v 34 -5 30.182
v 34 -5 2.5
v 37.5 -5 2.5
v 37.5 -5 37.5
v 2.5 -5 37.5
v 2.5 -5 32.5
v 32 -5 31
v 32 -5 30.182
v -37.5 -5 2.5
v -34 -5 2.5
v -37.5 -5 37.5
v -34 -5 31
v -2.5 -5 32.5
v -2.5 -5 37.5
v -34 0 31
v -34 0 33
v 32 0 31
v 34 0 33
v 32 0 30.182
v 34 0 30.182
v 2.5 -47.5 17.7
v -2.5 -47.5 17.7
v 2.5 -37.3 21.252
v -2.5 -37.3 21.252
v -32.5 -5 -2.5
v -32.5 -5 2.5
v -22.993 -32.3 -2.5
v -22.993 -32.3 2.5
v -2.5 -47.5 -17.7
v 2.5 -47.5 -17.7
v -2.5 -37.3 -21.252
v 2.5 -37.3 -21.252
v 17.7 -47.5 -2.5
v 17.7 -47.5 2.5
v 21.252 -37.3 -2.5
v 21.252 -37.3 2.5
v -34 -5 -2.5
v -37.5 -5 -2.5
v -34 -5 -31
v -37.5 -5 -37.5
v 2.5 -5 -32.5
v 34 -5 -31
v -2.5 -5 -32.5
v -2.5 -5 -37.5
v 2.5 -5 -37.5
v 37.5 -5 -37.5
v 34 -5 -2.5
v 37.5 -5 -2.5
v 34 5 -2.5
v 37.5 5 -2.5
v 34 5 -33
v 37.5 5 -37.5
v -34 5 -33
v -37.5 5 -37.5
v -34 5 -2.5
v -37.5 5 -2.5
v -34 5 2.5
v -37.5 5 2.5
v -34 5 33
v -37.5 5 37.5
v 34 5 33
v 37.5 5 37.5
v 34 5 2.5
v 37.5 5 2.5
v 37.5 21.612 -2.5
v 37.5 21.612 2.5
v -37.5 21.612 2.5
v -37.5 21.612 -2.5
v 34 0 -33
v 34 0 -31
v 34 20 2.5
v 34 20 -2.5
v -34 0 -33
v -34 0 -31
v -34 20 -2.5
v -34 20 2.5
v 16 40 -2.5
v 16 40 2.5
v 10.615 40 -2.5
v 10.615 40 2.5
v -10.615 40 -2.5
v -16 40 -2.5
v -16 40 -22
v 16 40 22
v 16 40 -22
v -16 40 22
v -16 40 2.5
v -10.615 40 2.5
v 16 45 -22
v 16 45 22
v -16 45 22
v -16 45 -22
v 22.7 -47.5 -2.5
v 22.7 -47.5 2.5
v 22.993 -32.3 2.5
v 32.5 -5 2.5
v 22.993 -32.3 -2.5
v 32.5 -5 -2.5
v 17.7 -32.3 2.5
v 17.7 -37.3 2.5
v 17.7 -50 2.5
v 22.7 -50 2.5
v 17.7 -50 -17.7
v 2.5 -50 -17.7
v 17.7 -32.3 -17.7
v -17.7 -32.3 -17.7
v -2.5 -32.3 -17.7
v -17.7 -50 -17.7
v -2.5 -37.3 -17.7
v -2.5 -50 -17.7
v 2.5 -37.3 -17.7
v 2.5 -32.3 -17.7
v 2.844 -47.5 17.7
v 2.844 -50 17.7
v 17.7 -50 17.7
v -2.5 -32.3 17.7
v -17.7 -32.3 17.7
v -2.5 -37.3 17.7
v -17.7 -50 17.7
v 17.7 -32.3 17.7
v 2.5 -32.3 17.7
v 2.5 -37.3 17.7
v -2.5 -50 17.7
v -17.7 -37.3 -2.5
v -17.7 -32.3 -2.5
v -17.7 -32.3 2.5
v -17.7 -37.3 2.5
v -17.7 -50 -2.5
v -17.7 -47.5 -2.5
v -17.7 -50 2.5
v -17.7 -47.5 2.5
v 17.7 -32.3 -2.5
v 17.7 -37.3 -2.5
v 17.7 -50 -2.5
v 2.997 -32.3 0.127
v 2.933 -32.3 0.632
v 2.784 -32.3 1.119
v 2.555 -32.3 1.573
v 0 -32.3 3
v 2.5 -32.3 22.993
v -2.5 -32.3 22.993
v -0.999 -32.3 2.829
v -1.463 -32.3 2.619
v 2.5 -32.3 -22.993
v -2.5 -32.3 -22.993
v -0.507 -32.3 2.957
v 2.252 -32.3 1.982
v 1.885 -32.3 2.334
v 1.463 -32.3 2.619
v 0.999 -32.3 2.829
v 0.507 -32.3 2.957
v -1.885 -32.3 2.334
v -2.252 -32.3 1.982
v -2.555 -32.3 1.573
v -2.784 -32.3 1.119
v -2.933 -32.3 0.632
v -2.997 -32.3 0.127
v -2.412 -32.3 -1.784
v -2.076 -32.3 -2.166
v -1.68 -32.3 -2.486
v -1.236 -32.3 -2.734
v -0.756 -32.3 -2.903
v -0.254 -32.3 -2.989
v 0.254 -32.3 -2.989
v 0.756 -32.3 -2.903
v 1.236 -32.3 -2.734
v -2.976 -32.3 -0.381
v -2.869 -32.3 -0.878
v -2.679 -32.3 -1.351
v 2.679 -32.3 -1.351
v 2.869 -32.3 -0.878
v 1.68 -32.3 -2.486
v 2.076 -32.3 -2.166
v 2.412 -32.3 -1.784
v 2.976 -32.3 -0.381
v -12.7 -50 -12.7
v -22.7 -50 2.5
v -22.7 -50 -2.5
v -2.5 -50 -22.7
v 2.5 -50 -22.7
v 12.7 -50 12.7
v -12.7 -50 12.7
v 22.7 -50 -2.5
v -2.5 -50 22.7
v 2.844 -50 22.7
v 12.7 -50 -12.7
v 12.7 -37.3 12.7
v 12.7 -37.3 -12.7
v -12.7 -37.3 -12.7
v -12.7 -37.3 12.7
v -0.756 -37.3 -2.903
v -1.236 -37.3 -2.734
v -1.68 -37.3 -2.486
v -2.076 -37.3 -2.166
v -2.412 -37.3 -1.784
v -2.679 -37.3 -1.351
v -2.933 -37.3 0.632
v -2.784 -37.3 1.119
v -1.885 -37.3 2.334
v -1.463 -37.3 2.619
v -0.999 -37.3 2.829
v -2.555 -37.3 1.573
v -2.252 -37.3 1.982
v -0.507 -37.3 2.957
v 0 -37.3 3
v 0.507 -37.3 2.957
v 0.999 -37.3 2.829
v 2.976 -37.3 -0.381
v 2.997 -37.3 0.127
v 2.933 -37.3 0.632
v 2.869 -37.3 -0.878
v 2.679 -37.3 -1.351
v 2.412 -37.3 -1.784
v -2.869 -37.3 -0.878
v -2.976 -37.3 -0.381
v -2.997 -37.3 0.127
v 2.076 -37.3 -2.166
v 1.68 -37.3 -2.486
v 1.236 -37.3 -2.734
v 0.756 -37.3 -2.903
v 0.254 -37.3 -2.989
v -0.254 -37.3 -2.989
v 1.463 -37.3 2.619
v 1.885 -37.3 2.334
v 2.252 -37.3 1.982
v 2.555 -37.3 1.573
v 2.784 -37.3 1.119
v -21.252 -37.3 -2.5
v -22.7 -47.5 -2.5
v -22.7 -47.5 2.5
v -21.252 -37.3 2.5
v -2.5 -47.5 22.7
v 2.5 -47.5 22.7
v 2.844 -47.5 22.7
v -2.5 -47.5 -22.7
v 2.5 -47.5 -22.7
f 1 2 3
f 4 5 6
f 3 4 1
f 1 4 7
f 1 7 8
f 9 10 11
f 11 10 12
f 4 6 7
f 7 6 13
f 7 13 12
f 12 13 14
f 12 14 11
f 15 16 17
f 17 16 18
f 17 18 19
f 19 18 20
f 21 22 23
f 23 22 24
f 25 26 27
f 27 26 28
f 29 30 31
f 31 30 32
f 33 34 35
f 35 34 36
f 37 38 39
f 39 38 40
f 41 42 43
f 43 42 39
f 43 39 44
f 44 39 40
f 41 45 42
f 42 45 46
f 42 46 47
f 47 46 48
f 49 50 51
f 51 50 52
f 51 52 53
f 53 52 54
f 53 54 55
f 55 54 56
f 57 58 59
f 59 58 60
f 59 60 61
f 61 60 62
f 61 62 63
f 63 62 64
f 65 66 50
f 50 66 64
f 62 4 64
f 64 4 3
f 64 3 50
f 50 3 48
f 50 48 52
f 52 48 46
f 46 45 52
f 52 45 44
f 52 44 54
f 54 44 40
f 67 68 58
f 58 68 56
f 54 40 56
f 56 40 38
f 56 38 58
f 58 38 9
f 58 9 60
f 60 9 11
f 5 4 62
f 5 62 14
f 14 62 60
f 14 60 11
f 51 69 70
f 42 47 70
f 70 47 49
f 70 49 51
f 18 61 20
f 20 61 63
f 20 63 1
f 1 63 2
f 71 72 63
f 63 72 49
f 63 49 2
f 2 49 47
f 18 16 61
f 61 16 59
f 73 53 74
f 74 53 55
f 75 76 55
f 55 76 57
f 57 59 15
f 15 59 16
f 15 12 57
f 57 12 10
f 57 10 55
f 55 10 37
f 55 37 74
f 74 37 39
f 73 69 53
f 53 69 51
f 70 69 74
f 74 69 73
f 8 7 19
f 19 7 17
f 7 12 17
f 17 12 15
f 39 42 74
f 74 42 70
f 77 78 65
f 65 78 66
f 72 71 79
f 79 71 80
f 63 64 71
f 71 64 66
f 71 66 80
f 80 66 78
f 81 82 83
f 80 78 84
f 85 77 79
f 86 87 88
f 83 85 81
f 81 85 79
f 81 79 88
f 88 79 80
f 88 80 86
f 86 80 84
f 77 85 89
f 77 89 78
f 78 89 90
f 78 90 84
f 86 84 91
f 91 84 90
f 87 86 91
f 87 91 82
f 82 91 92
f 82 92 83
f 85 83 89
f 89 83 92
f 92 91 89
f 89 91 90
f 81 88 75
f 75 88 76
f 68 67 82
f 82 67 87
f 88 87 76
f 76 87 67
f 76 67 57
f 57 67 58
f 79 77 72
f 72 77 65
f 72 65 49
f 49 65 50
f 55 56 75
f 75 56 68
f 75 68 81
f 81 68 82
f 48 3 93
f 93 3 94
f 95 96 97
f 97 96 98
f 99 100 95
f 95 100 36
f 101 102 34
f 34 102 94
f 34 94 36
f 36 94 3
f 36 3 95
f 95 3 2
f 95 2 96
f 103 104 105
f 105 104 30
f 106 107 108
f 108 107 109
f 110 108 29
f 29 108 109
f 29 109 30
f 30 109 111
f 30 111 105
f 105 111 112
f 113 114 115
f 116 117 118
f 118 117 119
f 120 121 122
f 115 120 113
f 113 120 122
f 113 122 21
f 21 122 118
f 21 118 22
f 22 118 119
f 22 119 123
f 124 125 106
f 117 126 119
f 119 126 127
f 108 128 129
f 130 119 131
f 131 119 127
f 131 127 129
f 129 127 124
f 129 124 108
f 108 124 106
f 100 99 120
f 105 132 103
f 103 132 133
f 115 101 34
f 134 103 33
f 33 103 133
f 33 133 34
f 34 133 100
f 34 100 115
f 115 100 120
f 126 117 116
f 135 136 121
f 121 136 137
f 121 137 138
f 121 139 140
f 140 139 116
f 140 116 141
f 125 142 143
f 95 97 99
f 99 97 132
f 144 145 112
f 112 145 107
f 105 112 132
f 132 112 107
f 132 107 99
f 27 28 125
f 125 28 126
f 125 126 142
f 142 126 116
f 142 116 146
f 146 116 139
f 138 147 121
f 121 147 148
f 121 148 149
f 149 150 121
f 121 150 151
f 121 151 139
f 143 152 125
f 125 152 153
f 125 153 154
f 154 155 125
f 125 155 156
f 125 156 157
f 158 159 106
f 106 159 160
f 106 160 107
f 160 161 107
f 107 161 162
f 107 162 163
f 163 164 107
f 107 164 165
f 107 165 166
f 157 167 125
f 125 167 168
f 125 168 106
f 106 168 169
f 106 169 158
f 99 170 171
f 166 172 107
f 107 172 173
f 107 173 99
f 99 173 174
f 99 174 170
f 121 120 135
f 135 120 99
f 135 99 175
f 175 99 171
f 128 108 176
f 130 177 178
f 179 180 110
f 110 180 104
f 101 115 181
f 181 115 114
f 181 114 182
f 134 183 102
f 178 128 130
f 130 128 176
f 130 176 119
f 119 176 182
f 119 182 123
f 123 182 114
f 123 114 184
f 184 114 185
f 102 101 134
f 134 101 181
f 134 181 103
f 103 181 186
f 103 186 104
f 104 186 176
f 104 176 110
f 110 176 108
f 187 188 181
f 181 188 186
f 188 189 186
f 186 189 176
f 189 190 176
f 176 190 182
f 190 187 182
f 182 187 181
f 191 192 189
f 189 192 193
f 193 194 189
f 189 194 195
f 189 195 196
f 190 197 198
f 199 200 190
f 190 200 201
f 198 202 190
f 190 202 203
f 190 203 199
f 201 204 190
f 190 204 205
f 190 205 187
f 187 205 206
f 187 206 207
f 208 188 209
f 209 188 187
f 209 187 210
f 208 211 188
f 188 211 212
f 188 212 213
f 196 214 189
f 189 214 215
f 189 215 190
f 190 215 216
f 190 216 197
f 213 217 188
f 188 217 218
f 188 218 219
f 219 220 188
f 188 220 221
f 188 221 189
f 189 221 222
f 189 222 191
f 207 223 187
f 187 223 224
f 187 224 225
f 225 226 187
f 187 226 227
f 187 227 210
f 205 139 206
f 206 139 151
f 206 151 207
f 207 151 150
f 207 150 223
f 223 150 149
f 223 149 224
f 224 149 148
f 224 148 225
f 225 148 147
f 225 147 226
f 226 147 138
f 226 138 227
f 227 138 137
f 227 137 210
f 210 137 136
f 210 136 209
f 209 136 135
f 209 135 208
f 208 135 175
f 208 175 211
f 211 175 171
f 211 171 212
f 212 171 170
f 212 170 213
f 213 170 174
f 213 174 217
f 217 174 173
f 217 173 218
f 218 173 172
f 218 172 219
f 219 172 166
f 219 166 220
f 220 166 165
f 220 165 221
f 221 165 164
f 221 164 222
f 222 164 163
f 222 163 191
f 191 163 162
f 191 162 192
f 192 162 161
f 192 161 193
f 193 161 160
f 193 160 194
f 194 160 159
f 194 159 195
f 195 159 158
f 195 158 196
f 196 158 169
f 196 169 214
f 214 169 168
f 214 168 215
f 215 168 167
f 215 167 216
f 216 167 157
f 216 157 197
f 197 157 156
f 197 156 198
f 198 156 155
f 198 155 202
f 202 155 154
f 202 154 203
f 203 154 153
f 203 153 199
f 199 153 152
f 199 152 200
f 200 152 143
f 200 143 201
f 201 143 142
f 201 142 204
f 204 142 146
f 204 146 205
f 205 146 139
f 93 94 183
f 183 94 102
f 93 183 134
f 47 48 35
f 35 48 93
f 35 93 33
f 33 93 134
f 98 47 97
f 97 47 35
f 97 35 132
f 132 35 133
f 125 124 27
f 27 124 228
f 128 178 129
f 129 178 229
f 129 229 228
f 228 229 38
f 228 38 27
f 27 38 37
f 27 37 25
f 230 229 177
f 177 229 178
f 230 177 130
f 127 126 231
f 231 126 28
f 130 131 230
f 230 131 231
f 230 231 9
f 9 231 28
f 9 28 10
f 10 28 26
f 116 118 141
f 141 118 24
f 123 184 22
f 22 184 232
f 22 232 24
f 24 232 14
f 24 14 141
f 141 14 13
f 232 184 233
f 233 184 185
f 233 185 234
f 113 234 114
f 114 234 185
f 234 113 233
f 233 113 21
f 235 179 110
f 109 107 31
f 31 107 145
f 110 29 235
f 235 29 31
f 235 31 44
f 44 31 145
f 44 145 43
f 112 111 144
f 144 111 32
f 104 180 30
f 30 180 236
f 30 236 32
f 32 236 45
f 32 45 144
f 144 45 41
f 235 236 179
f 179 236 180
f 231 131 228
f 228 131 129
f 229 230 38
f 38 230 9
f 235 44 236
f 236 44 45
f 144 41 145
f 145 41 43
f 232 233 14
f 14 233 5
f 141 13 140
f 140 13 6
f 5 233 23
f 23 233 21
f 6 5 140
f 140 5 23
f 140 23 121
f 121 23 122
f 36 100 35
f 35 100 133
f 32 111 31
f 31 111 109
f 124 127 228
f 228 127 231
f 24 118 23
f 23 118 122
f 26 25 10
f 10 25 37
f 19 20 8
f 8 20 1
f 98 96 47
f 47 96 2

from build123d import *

# Parameters (mm, degrees)
SKETCH2_W                   = 75
SKETCH2_H                   = 75
BOSS_EXTRUDE1_DEPTH         = 5
SKETCH2_2_W                 = 75
SKETCH2_2_H                 = 75
BOSS_EXTRUDE2_DEPTH         = 5
SKETCH4_W                   = 68
SKETCH4_H                   = 66
CUT_EXTRUDE1_DEPTH          = 5
SKETCH5_W                   = 64
SKETCH5_H                   = 62
CUT_EXTRUDE2_DEPTH          = 5
SKETCH14_W                  = 35.4
SKETCH14_H                  = 35.4
BOSS_EXTRUDE9_DEPTH         = 17.7
SKETCH15_W                  = 25.4
SKETCH15_H                  = 25.4
CUT_EXTRUDE3_DEPTH          = 12.7
SKETCH32_R                  = 3
CUT_EXTRUDE6_DEPTH          = 5
SKETCH16_W                  = 32
SKETCH16_H                  = 44
BOSS_EXTRUDE10_DEPTH        = 5
BOSS_EXTRUDE13_DEPTH        = 2.5
BOSS_EXTRUDE14_DEPTH        = 2.5
SKETCH27_W                  = 5
SKETCH27_H                  = 5
SKETCH27_W_2                = 5.344431893
EYEBOLT_BOLT_SUPPORTS_DEPTH = 2.5
BOSS_EXTRUDE15_DEPTH        = 2.5
BOSS_EXTRUDE16_DEPTH        = 2.5
BOSS_EXTRUDE17_DEPTH        = 2.5
BOSS_EXTRUDE18_DEPTH        = 2.5
SKETCH33_W                  = 6.3
SKETCH33_H                  = 5
SKETCH33_W_2                = 5
SKETCH33_H_2                = 6.3
EYEBOLT_MINI_SUPPORTS_DEPTH = 5
SKETCH34_W                  = 2
SKETCH34_H                  = 62
SKETCH34_H_2                = 61.182345807
CUT_EXTRUDE7_DEPTH          = 5


with BuildPart() as part:
    # Sketch2 → Boss-Extrude1 (new body)
    with BuildSketch(Plane(origin=(0, 0, 0), x_dir=(1, 0, 0), z_dir=(0, 1, 0))):
        Rectangle(SKETCH2_W, SKETCH2_H)
    extrude(amount=BOSS_EXTRUDE1_DEPTH)

    # Sketch2<2> → Boss-Extrude2 (add)
    with BuildSketch(Plane(origin=(0, 0, 0), x_dir=(1, 0, 0), z_dir=(0, 1, 0))):
        Rectangle(SKETCH2_2_W, SKETCH2_2_H)
    extrude(amount=-BOSS_EXTRUDE2_DEPTH)

    # Sketch4 → Cut-Extrude1 (cut)
    with BuildSketch(Plane(origin=(0, 5, 0), x_dir=(1, 0, 0), z_dir=(0, 1, 0))):
        Rectangle(SKETCH4_W, SKETCH4_H)
    extrude(amount=-CUT_EXTRUDE1_DEPTH, mode=Mode.SUBTRACT)

    # Sketch5 → Cut-Extrude2 (cut)
    with BuildSketch(Plane(origin=(0, 0, 0), x_dir=(1, 0, 0), z_dir=(0, 1, 0))):
        Rectangle(SKETCH5_W, SKETCH5_H)
    extrude(amount=-CUT_EXTRUDE2_DEPTH, mode=Mode.SUBTRACT)



with BuildPart() as body_2:
    # Sketch14 → Boss-Extrude9 (new body)
    with BuildSketch(Plane(origin=(0, -50, 0), x_dir=(1, 0, 0), z_dir=(0, 1, 0))):
        Rectangle(SKETCH14_W, SKETCH14_H)
    extrude(amount=BOSS_EXTRUDE9_DEPTH)

    # Sketch15 → Cut-Extrude3 (cut)
    with BuildSketch(Plane.XZ.offset(50)):
        Rectangle(SKETCH15_W, SKETCH15_H)
    extrude(amount=-CUT_EXTRUDE3_DEPTH, mode=Mode.SUBTRACT)

    # Sketch32 → Cut-Extrude6 (cut)
    with BuildSketch(Plane(origin=(0, -32.3, 0), x_dir=(1, 0, 0), z_dir=(0, 1, 0))):
        Circle(SKETCH32_R)
    extrude(amount=-CUT_EXTRUDE6_DEPTH, mode=Mode.SUBTRACT)

    # Sketch27 → Eyebolt Bolt Supports (add)
    with BuildSketch(Plane(origin=(0, -50, 0), x_dir=(-1, 0, 0), z_dir=(0, -1, 0))):
        with Locations((-20.2, 0)):
            Rectangle(SKETCH27_W, SKETCH27_H)
        with Locations((20.2, 0)):
            Rectangle(SKETCH27_W, SKETCH27_H)
        with Locations((-0.172215947, -20.2)):
            Rectangle(SKETCH27_W_2, SKETCH27_H)
        with Locations((0, 20.2)):
            Rectangle(SKETCH27_W, SKETCH27_H)
    extrude(amount=-EYEBOLT_BOLT_SUPPORTS_DEPTH)


with BuildPart() as body_3:
    # Sketch16 → Boss-Extrude10 (new body)
    with BuildSketch(Plane(origin=(0, 45, 0), x_dir=(1, 0, 0), z_dir=(0, 1, 0))):
        Rectangle(SKETCH16_W, SKETCH16_H)
    extrude(amount=-BOSS_EXTRUDE10_DEPTH)


with BuildPart() as part_1:
    add(part.part)

    add(body_3.part)  # Boss-Extrude13 merges body 3
    # Sketch21 → Boss-Extrude13 (add)
    with BuildSketch(Plane.XY):
        Polygon((-34, 5), (-37.5, 5), (-37.5, 21.612086276), (-16, 40), (-10.615074094, 40), (-34, 20), align=None)
        Polygon((37.5, 5), (34, 5), (34, 20), (10.615074094, 40), (16, 40), (37.5, 21.612086276), align=None)
    extrude(amount=BOSS_EXTRUDE13_DEPTH)

    # Sketch21<2> → Boss-Extrude14 (add)
    with BuildSketch(Plane.XY):
        Polygon((-34, 20), (-10.615074094, 40), (-16, 40), (-37.5, 21.612086276), (-37.5, 5), (-34, 5), align=None)
        Polygon((34, 5), (37.5, 5), (37.5, 21.612086276), (16, 40), (10.615074094, 40), (34, 20), align=None)
    extrude(amount=-BOSS_EXTRUDE14_DEPTH)


    add(body_2.part)  # Boss-Extrude15 merges body 2
    # Sketch28 → Boss-Extrude15 (add)
    with BuildSketch(Plane.XY):
        Polygon((22.7, -47.5), (37.5, -5), (32.5, -5), (17.7, -47.5), align=None)
        Polygon((-22.7, -47.5), (-37.5, -5), (-32.5, -5), (-17.7, -47.5), align=None)
    extrude(amount=BOSS_EXTRUDE15_DEPTH)

    # Sketch28<2> → Boss-Extrude16 (add)
    with BuildSketch(Plane.XY):
        Polygon((22.7, -47.5), (37.5, -5), (32.5, -5), (17.7, -47.5), align=None)
        Polygon((-22.7, -47.5), (-37.5, -5), (-32.5, -5), (-17.7, -47.5), align=None)
    extrude(amount=-BOSS_EXTRUDE16_DEPTH)

    # Sketch30 → Boss-Extrude17 (add)
    with BuildSketch(Plane(origin=(0, 0, 0), x_dir=(0, 0, -1), z_dir=(1, 0, 0))):
        Polygon((22.7, -47.5), (37.5, -5), (32.5, -5), (17.7, -47.5), align=None)
        Polygon((-37.5, -5), (-22.7, -47.5), (-17.7, -47.5), (-32.5, -5), align=None)
    extrude(amount=BOSS_EXTRUDE17_DEPTH)

    # Sketch30<2> → Boss-Extrude18 (add)
    with BuildSketch(Plane(origin=(0, 0, 0), x_dir=(0, 0, -1), z_dir=(1, 0, 0))):
        Polygon((22.7, -47.5), (37.5, -5), (32.5, -5), (17.7, -47.5), align=None)
        Polygon((-37.5, -5), (-22.7, -47.5), (-17.7, -47.5), (-32.5, -5), align=None)
    extrude(amount=-BOSS_EXTRUDE18_DEPTH)

    # Sketch33 → Eyebolt Mini Supports (add)
    with BuildSketch(Plane(origin=(0, -32.3, 0), x_dir=(1, 0, 0), z_dir=(0, 1, 0))):
        with Locations((20.85, 0)):
            Rectangle(SKETCH33_W, SKETCH33_H)
        with Locations((0, 20.85)):
            Rectangle(SKETCH33_W_2, SKETCH33_H_2)
        with Locations((-20.85, 0)):
            Rectangle(SKETCH33_W, SKETCH33_H)
        with Locations((0, -20.85)):
            Rectangle(SKETCH33_W_2, SKETCH33_H_2)
    extrude(amount=-EYEBOLT_MINI_SUPPORTS_DEPTH)

    # Sketch34 → Cut-Extrude7 (cut)
    with BuildSketch(Plane(origin=(0, 0, 0), x_dir=(1, 0, 0), z_dir=(0, 1, 0))):
        with Locations((-33, 0)):
            Rectangle(SKETCH34_W, SKETCH34_H)
        with Locations((33, 0.408827097)):
            Rectangle(SKETCH34_W, SKETCH34_H_2)
    extrude(amount=-CUT_EXTRUDE7_DEPTH, mode=Mode.SUBTRACT)


solid = part_1.part
